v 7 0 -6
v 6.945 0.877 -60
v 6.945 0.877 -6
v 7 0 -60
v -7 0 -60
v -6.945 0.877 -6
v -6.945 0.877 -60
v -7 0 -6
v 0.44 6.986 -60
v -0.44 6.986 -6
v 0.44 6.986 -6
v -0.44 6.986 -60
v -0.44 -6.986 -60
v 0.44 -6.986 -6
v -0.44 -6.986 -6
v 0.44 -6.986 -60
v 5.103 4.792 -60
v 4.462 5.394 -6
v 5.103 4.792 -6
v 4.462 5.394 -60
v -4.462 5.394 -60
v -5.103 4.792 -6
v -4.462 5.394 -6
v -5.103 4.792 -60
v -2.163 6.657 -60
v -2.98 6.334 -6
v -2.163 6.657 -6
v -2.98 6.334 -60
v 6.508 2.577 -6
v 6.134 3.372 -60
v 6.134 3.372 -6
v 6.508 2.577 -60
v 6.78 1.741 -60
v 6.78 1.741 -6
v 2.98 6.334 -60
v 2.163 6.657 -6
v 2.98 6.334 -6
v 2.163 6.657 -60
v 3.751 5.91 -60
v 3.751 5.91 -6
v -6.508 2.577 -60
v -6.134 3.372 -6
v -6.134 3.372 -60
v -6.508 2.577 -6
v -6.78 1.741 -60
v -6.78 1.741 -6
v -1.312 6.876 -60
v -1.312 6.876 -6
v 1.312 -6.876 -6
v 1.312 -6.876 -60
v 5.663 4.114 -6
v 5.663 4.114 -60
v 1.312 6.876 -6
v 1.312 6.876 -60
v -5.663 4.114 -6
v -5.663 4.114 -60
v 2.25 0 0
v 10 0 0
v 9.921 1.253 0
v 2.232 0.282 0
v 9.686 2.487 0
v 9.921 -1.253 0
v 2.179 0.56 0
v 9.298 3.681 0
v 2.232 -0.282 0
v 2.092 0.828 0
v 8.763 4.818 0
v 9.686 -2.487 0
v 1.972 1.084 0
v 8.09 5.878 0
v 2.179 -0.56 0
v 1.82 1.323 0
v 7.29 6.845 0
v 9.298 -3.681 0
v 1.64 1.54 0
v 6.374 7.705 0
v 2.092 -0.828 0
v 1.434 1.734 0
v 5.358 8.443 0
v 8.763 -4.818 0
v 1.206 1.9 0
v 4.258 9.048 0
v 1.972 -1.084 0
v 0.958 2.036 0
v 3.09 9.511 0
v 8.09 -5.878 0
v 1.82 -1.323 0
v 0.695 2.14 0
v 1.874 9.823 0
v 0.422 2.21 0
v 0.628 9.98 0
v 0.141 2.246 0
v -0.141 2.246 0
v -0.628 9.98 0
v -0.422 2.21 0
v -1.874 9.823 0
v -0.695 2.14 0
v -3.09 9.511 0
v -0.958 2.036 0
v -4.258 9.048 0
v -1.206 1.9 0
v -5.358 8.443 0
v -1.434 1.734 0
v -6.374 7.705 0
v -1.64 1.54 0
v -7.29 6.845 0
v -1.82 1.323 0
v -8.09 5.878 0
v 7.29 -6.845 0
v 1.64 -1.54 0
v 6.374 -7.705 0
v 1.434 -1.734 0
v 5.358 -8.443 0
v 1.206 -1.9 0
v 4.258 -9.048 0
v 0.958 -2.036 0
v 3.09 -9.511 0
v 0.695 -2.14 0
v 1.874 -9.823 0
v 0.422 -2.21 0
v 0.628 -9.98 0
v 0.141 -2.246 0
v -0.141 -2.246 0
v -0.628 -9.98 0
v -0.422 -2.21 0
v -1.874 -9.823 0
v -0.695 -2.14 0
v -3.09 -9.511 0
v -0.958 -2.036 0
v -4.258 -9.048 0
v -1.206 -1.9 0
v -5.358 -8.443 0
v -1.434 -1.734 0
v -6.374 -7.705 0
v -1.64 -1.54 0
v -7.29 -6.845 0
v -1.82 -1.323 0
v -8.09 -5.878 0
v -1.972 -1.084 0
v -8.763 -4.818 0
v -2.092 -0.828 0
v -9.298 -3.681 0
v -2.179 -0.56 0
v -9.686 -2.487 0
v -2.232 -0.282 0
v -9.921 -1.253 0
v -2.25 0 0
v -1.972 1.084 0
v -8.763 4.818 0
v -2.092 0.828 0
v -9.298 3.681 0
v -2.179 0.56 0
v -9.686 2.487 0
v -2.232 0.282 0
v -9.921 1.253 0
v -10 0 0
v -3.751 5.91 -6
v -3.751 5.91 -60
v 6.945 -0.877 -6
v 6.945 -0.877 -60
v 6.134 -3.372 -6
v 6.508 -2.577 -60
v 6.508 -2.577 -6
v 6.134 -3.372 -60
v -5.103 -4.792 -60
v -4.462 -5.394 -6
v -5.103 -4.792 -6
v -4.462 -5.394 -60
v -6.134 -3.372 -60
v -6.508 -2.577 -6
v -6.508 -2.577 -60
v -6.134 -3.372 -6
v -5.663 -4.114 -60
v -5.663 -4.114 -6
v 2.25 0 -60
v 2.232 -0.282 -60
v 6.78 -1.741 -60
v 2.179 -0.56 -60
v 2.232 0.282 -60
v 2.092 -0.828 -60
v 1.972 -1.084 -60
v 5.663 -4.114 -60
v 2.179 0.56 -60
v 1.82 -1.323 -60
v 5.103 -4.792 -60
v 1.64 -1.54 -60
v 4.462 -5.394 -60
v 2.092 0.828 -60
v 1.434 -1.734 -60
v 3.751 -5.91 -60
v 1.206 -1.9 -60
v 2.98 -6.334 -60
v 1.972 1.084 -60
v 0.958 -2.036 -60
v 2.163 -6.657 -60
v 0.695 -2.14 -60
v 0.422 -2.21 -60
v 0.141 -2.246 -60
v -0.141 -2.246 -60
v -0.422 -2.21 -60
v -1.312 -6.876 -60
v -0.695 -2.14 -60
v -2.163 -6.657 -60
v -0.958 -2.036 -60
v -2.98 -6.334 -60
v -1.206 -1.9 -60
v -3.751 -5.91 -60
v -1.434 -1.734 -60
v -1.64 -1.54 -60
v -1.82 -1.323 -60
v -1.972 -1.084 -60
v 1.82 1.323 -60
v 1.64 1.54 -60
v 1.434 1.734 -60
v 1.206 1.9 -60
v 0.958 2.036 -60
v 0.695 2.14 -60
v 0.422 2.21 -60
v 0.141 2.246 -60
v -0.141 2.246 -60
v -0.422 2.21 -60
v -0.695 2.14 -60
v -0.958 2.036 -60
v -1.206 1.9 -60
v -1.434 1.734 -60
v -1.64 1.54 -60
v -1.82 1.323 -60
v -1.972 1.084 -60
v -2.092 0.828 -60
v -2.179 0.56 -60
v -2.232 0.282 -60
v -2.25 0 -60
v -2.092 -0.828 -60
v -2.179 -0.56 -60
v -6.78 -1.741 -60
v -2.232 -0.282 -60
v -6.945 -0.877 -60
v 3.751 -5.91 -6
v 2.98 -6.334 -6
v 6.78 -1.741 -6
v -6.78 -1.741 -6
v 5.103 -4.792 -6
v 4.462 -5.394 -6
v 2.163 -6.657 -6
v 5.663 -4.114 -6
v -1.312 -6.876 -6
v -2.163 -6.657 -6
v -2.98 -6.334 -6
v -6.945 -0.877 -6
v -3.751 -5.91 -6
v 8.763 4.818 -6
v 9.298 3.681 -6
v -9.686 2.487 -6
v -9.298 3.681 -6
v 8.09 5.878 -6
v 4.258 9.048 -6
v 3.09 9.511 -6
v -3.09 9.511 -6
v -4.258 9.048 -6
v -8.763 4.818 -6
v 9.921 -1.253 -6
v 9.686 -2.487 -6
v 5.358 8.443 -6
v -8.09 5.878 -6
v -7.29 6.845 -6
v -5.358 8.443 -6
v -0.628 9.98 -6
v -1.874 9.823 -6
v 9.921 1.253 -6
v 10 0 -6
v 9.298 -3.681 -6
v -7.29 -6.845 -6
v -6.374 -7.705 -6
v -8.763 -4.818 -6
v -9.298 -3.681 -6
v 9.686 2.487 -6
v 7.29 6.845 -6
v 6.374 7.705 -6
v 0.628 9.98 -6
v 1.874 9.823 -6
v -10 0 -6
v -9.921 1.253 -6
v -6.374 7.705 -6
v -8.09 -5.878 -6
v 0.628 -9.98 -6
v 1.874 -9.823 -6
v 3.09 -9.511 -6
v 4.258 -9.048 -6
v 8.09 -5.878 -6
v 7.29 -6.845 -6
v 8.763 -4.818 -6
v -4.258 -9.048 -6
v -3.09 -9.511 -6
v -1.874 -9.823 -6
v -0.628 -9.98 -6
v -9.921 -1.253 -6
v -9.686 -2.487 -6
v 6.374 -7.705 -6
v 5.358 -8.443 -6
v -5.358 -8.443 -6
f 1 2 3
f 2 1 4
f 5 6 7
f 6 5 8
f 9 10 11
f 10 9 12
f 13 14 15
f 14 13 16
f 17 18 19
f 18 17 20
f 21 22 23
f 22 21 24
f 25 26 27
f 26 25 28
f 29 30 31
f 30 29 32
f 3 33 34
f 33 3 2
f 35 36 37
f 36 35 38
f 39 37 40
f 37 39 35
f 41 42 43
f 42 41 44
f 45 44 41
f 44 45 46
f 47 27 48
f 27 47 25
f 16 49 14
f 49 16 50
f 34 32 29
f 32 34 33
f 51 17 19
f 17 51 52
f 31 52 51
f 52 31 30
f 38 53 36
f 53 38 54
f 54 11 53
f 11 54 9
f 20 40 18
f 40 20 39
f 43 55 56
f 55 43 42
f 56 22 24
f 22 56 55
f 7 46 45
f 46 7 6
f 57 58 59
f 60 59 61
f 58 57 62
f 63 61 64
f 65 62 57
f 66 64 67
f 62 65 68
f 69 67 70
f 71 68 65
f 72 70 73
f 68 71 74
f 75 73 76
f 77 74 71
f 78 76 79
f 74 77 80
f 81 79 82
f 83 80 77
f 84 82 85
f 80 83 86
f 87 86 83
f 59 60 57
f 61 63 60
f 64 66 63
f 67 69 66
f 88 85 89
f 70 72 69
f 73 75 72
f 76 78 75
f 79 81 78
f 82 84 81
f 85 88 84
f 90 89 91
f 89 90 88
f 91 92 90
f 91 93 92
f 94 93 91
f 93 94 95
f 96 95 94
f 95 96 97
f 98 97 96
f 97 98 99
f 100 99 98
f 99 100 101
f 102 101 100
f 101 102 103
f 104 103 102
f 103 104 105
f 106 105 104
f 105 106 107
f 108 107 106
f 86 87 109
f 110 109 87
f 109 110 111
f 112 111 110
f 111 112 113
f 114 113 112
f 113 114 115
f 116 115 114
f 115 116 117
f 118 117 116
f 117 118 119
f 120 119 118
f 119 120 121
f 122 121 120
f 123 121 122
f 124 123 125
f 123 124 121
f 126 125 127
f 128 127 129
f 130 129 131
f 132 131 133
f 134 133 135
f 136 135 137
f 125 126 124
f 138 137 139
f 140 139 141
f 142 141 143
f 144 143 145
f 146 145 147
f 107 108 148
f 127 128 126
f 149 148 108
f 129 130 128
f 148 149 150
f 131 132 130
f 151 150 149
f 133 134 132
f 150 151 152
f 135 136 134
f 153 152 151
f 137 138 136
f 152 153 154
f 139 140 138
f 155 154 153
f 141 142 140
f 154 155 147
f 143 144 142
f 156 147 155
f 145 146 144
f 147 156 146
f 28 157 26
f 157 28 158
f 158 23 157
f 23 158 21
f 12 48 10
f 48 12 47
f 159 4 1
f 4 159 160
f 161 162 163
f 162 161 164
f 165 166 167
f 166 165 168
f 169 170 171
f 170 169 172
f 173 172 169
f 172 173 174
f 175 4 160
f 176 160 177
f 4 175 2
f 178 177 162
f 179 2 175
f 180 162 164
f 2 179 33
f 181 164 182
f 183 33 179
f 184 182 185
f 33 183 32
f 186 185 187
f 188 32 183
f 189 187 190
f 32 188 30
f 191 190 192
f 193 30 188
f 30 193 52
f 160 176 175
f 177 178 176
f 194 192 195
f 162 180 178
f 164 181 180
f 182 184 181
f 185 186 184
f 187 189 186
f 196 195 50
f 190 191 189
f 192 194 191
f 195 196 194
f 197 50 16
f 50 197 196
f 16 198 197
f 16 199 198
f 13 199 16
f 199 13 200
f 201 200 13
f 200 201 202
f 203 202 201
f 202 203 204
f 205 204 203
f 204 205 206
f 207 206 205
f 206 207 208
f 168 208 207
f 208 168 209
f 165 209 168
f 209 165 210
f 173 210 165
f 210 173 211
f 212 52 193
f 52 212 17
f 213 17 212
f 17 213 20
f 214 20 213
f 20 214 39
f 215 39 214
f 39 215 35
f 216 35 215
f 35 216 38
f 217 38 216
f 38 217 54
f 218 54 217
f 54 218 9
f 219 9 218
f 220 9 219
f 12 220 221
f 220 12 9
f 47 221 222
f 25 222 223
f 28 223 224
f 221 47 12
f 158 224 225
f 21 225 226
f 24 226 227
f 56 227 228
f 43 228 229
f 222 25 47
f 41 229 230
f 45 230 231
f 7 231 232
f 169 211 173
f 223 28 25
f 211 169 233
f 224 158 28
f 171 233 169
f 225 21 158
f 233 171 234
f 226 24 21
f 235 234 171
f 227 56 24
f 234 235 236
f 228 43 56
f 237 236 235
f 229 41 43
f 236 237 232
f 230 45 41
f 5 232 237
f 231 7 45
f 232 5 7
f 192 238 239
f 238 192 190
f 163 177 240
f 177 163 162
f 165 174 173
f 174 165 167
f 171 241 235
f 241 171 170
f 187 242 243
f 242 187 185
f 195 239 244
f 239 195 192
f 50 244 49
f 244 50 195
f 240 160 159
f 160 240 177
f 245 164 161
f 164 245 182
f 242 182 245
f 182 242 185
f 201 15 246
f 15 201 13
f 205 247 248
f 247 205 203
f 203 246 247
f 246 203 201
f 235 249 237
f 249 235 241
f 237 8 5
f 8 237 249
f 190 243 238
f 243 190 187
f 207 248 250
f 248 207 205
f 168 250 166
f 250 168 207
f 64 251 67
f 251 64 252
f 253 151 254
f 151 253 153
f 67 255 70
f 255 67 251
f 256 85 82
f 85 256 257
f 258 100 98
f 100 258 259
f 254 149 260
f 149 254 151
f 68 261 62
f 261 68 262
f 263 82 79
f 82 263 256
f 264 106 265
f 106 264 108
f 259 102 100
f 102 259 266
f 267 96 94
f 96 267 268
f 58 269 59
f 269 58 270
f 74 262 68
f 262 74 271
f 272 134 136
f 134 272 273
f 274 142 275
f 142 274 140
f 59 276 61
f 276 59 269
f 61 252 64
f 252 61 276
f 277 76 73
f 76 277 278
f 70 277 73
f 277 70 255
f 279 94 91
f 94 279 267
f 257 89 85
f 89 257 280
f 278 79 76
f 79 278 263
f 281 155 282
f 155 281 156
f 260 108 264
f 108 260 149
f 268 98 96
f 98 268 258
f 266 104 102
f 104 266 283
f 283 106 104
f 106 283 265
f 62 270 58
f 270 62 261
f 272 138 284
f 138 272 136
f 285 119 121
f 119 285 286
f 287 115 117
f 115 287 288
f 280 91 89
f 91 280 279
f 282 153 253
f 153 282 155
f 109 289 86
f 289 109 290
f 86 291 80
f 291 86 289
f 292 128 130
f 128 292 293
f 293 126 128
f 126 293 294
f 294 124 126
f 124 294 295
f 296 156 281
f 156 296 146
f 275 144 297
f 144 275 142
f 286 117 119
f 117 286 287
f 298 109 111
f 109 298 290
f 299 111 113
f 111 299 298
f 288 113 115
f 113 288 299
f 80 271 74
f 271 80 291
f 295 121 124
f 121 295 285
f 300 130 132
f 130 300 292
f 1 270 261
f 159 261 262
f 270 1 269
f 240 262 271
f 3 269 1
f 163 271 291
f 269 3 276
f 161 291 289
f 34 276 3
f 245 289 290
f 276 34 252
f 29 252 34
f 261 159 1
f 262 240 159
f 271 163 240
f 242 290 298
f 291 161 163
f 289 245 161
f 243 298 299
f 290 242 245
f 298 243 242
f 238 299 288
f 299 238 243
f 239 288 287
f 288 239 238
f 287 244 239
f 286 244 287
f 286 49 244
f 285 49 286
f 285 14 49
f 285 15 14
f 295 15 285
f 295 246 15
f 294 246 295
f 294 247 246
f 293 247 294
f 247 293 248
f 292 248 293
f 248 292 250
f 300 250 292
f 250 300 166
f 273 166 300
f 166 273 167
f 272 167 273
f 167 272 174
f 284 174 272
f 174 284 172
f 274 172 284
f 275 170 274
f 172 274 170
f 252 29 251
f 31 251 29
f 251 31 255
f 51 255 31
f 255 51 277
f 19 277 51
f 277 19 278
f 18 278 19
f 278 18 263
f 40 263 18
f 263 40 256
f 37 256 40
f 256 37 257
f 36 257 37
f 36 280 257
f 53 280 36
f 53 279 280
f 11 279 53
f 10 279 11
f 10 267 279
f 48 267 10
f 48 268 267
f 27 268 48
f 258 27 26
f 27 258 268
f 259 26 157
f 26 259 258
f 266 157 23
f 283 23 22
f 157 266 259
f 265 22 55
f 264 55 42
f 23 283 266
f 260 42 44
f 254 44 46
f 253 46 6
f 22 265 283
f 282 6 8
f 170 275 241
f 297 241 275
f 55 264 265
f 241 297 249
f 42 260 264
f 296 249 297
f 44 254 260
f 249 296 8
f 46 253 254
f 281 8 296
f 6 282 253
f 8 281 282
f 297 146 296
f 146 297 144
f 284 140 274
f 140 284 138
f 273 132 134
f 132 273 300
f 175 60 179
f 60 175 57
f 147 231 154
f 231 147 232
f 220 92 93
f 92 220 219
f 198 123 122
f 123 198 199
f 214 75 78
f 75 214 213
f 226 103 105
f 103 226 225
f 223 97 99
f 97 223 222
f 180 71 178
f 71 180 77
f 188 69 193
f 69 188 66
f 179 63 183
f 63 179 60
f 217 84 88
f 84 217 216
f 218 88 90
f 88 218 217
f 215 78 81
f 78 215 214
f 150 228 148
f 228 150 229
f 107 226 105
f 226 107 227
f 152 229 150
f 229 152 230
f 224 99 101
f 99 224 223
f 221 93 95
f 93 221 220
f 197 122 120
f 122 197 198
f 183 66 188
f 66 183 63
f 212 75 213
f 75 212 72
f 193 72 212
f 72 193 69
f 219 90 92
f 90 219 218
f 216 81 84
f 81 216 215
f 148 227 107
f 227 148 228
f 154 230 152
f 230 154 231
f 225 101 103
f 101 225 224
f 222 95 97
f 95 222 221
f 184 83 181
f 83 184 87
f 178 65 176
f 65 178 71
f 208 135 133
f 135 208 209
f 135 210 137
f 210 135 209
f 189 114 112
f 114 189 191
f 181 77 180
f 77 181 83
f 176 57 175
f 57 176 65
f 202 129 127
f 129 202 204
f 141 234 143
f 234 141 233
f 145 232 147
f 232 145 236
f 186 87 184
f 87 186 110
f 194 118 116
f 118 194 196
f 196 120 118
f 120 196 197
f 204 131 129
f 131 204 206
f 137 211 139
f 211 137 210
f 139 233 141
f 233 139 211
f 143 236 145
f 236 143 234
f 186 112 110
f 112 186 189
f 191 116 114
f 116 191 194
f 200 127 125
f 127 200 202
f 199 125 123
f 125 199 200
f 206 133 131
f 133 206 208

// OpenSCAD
$fn = 50;


difference() {
	union() {
		translate(v = [0, 0, -60.0000000000]) {
			cylinder(h = 60, r = 7.0000000000);
		}
		translate(v = [0, 0, -6.0000000000]) {
			cylinder(h = 6, r = 10.0000000000);
		}
	}
	union() {
		#translate(v = [0, 0, -60]) {
			cylinder(h = 60, r = 2.2500000000);
		}
	}
}
